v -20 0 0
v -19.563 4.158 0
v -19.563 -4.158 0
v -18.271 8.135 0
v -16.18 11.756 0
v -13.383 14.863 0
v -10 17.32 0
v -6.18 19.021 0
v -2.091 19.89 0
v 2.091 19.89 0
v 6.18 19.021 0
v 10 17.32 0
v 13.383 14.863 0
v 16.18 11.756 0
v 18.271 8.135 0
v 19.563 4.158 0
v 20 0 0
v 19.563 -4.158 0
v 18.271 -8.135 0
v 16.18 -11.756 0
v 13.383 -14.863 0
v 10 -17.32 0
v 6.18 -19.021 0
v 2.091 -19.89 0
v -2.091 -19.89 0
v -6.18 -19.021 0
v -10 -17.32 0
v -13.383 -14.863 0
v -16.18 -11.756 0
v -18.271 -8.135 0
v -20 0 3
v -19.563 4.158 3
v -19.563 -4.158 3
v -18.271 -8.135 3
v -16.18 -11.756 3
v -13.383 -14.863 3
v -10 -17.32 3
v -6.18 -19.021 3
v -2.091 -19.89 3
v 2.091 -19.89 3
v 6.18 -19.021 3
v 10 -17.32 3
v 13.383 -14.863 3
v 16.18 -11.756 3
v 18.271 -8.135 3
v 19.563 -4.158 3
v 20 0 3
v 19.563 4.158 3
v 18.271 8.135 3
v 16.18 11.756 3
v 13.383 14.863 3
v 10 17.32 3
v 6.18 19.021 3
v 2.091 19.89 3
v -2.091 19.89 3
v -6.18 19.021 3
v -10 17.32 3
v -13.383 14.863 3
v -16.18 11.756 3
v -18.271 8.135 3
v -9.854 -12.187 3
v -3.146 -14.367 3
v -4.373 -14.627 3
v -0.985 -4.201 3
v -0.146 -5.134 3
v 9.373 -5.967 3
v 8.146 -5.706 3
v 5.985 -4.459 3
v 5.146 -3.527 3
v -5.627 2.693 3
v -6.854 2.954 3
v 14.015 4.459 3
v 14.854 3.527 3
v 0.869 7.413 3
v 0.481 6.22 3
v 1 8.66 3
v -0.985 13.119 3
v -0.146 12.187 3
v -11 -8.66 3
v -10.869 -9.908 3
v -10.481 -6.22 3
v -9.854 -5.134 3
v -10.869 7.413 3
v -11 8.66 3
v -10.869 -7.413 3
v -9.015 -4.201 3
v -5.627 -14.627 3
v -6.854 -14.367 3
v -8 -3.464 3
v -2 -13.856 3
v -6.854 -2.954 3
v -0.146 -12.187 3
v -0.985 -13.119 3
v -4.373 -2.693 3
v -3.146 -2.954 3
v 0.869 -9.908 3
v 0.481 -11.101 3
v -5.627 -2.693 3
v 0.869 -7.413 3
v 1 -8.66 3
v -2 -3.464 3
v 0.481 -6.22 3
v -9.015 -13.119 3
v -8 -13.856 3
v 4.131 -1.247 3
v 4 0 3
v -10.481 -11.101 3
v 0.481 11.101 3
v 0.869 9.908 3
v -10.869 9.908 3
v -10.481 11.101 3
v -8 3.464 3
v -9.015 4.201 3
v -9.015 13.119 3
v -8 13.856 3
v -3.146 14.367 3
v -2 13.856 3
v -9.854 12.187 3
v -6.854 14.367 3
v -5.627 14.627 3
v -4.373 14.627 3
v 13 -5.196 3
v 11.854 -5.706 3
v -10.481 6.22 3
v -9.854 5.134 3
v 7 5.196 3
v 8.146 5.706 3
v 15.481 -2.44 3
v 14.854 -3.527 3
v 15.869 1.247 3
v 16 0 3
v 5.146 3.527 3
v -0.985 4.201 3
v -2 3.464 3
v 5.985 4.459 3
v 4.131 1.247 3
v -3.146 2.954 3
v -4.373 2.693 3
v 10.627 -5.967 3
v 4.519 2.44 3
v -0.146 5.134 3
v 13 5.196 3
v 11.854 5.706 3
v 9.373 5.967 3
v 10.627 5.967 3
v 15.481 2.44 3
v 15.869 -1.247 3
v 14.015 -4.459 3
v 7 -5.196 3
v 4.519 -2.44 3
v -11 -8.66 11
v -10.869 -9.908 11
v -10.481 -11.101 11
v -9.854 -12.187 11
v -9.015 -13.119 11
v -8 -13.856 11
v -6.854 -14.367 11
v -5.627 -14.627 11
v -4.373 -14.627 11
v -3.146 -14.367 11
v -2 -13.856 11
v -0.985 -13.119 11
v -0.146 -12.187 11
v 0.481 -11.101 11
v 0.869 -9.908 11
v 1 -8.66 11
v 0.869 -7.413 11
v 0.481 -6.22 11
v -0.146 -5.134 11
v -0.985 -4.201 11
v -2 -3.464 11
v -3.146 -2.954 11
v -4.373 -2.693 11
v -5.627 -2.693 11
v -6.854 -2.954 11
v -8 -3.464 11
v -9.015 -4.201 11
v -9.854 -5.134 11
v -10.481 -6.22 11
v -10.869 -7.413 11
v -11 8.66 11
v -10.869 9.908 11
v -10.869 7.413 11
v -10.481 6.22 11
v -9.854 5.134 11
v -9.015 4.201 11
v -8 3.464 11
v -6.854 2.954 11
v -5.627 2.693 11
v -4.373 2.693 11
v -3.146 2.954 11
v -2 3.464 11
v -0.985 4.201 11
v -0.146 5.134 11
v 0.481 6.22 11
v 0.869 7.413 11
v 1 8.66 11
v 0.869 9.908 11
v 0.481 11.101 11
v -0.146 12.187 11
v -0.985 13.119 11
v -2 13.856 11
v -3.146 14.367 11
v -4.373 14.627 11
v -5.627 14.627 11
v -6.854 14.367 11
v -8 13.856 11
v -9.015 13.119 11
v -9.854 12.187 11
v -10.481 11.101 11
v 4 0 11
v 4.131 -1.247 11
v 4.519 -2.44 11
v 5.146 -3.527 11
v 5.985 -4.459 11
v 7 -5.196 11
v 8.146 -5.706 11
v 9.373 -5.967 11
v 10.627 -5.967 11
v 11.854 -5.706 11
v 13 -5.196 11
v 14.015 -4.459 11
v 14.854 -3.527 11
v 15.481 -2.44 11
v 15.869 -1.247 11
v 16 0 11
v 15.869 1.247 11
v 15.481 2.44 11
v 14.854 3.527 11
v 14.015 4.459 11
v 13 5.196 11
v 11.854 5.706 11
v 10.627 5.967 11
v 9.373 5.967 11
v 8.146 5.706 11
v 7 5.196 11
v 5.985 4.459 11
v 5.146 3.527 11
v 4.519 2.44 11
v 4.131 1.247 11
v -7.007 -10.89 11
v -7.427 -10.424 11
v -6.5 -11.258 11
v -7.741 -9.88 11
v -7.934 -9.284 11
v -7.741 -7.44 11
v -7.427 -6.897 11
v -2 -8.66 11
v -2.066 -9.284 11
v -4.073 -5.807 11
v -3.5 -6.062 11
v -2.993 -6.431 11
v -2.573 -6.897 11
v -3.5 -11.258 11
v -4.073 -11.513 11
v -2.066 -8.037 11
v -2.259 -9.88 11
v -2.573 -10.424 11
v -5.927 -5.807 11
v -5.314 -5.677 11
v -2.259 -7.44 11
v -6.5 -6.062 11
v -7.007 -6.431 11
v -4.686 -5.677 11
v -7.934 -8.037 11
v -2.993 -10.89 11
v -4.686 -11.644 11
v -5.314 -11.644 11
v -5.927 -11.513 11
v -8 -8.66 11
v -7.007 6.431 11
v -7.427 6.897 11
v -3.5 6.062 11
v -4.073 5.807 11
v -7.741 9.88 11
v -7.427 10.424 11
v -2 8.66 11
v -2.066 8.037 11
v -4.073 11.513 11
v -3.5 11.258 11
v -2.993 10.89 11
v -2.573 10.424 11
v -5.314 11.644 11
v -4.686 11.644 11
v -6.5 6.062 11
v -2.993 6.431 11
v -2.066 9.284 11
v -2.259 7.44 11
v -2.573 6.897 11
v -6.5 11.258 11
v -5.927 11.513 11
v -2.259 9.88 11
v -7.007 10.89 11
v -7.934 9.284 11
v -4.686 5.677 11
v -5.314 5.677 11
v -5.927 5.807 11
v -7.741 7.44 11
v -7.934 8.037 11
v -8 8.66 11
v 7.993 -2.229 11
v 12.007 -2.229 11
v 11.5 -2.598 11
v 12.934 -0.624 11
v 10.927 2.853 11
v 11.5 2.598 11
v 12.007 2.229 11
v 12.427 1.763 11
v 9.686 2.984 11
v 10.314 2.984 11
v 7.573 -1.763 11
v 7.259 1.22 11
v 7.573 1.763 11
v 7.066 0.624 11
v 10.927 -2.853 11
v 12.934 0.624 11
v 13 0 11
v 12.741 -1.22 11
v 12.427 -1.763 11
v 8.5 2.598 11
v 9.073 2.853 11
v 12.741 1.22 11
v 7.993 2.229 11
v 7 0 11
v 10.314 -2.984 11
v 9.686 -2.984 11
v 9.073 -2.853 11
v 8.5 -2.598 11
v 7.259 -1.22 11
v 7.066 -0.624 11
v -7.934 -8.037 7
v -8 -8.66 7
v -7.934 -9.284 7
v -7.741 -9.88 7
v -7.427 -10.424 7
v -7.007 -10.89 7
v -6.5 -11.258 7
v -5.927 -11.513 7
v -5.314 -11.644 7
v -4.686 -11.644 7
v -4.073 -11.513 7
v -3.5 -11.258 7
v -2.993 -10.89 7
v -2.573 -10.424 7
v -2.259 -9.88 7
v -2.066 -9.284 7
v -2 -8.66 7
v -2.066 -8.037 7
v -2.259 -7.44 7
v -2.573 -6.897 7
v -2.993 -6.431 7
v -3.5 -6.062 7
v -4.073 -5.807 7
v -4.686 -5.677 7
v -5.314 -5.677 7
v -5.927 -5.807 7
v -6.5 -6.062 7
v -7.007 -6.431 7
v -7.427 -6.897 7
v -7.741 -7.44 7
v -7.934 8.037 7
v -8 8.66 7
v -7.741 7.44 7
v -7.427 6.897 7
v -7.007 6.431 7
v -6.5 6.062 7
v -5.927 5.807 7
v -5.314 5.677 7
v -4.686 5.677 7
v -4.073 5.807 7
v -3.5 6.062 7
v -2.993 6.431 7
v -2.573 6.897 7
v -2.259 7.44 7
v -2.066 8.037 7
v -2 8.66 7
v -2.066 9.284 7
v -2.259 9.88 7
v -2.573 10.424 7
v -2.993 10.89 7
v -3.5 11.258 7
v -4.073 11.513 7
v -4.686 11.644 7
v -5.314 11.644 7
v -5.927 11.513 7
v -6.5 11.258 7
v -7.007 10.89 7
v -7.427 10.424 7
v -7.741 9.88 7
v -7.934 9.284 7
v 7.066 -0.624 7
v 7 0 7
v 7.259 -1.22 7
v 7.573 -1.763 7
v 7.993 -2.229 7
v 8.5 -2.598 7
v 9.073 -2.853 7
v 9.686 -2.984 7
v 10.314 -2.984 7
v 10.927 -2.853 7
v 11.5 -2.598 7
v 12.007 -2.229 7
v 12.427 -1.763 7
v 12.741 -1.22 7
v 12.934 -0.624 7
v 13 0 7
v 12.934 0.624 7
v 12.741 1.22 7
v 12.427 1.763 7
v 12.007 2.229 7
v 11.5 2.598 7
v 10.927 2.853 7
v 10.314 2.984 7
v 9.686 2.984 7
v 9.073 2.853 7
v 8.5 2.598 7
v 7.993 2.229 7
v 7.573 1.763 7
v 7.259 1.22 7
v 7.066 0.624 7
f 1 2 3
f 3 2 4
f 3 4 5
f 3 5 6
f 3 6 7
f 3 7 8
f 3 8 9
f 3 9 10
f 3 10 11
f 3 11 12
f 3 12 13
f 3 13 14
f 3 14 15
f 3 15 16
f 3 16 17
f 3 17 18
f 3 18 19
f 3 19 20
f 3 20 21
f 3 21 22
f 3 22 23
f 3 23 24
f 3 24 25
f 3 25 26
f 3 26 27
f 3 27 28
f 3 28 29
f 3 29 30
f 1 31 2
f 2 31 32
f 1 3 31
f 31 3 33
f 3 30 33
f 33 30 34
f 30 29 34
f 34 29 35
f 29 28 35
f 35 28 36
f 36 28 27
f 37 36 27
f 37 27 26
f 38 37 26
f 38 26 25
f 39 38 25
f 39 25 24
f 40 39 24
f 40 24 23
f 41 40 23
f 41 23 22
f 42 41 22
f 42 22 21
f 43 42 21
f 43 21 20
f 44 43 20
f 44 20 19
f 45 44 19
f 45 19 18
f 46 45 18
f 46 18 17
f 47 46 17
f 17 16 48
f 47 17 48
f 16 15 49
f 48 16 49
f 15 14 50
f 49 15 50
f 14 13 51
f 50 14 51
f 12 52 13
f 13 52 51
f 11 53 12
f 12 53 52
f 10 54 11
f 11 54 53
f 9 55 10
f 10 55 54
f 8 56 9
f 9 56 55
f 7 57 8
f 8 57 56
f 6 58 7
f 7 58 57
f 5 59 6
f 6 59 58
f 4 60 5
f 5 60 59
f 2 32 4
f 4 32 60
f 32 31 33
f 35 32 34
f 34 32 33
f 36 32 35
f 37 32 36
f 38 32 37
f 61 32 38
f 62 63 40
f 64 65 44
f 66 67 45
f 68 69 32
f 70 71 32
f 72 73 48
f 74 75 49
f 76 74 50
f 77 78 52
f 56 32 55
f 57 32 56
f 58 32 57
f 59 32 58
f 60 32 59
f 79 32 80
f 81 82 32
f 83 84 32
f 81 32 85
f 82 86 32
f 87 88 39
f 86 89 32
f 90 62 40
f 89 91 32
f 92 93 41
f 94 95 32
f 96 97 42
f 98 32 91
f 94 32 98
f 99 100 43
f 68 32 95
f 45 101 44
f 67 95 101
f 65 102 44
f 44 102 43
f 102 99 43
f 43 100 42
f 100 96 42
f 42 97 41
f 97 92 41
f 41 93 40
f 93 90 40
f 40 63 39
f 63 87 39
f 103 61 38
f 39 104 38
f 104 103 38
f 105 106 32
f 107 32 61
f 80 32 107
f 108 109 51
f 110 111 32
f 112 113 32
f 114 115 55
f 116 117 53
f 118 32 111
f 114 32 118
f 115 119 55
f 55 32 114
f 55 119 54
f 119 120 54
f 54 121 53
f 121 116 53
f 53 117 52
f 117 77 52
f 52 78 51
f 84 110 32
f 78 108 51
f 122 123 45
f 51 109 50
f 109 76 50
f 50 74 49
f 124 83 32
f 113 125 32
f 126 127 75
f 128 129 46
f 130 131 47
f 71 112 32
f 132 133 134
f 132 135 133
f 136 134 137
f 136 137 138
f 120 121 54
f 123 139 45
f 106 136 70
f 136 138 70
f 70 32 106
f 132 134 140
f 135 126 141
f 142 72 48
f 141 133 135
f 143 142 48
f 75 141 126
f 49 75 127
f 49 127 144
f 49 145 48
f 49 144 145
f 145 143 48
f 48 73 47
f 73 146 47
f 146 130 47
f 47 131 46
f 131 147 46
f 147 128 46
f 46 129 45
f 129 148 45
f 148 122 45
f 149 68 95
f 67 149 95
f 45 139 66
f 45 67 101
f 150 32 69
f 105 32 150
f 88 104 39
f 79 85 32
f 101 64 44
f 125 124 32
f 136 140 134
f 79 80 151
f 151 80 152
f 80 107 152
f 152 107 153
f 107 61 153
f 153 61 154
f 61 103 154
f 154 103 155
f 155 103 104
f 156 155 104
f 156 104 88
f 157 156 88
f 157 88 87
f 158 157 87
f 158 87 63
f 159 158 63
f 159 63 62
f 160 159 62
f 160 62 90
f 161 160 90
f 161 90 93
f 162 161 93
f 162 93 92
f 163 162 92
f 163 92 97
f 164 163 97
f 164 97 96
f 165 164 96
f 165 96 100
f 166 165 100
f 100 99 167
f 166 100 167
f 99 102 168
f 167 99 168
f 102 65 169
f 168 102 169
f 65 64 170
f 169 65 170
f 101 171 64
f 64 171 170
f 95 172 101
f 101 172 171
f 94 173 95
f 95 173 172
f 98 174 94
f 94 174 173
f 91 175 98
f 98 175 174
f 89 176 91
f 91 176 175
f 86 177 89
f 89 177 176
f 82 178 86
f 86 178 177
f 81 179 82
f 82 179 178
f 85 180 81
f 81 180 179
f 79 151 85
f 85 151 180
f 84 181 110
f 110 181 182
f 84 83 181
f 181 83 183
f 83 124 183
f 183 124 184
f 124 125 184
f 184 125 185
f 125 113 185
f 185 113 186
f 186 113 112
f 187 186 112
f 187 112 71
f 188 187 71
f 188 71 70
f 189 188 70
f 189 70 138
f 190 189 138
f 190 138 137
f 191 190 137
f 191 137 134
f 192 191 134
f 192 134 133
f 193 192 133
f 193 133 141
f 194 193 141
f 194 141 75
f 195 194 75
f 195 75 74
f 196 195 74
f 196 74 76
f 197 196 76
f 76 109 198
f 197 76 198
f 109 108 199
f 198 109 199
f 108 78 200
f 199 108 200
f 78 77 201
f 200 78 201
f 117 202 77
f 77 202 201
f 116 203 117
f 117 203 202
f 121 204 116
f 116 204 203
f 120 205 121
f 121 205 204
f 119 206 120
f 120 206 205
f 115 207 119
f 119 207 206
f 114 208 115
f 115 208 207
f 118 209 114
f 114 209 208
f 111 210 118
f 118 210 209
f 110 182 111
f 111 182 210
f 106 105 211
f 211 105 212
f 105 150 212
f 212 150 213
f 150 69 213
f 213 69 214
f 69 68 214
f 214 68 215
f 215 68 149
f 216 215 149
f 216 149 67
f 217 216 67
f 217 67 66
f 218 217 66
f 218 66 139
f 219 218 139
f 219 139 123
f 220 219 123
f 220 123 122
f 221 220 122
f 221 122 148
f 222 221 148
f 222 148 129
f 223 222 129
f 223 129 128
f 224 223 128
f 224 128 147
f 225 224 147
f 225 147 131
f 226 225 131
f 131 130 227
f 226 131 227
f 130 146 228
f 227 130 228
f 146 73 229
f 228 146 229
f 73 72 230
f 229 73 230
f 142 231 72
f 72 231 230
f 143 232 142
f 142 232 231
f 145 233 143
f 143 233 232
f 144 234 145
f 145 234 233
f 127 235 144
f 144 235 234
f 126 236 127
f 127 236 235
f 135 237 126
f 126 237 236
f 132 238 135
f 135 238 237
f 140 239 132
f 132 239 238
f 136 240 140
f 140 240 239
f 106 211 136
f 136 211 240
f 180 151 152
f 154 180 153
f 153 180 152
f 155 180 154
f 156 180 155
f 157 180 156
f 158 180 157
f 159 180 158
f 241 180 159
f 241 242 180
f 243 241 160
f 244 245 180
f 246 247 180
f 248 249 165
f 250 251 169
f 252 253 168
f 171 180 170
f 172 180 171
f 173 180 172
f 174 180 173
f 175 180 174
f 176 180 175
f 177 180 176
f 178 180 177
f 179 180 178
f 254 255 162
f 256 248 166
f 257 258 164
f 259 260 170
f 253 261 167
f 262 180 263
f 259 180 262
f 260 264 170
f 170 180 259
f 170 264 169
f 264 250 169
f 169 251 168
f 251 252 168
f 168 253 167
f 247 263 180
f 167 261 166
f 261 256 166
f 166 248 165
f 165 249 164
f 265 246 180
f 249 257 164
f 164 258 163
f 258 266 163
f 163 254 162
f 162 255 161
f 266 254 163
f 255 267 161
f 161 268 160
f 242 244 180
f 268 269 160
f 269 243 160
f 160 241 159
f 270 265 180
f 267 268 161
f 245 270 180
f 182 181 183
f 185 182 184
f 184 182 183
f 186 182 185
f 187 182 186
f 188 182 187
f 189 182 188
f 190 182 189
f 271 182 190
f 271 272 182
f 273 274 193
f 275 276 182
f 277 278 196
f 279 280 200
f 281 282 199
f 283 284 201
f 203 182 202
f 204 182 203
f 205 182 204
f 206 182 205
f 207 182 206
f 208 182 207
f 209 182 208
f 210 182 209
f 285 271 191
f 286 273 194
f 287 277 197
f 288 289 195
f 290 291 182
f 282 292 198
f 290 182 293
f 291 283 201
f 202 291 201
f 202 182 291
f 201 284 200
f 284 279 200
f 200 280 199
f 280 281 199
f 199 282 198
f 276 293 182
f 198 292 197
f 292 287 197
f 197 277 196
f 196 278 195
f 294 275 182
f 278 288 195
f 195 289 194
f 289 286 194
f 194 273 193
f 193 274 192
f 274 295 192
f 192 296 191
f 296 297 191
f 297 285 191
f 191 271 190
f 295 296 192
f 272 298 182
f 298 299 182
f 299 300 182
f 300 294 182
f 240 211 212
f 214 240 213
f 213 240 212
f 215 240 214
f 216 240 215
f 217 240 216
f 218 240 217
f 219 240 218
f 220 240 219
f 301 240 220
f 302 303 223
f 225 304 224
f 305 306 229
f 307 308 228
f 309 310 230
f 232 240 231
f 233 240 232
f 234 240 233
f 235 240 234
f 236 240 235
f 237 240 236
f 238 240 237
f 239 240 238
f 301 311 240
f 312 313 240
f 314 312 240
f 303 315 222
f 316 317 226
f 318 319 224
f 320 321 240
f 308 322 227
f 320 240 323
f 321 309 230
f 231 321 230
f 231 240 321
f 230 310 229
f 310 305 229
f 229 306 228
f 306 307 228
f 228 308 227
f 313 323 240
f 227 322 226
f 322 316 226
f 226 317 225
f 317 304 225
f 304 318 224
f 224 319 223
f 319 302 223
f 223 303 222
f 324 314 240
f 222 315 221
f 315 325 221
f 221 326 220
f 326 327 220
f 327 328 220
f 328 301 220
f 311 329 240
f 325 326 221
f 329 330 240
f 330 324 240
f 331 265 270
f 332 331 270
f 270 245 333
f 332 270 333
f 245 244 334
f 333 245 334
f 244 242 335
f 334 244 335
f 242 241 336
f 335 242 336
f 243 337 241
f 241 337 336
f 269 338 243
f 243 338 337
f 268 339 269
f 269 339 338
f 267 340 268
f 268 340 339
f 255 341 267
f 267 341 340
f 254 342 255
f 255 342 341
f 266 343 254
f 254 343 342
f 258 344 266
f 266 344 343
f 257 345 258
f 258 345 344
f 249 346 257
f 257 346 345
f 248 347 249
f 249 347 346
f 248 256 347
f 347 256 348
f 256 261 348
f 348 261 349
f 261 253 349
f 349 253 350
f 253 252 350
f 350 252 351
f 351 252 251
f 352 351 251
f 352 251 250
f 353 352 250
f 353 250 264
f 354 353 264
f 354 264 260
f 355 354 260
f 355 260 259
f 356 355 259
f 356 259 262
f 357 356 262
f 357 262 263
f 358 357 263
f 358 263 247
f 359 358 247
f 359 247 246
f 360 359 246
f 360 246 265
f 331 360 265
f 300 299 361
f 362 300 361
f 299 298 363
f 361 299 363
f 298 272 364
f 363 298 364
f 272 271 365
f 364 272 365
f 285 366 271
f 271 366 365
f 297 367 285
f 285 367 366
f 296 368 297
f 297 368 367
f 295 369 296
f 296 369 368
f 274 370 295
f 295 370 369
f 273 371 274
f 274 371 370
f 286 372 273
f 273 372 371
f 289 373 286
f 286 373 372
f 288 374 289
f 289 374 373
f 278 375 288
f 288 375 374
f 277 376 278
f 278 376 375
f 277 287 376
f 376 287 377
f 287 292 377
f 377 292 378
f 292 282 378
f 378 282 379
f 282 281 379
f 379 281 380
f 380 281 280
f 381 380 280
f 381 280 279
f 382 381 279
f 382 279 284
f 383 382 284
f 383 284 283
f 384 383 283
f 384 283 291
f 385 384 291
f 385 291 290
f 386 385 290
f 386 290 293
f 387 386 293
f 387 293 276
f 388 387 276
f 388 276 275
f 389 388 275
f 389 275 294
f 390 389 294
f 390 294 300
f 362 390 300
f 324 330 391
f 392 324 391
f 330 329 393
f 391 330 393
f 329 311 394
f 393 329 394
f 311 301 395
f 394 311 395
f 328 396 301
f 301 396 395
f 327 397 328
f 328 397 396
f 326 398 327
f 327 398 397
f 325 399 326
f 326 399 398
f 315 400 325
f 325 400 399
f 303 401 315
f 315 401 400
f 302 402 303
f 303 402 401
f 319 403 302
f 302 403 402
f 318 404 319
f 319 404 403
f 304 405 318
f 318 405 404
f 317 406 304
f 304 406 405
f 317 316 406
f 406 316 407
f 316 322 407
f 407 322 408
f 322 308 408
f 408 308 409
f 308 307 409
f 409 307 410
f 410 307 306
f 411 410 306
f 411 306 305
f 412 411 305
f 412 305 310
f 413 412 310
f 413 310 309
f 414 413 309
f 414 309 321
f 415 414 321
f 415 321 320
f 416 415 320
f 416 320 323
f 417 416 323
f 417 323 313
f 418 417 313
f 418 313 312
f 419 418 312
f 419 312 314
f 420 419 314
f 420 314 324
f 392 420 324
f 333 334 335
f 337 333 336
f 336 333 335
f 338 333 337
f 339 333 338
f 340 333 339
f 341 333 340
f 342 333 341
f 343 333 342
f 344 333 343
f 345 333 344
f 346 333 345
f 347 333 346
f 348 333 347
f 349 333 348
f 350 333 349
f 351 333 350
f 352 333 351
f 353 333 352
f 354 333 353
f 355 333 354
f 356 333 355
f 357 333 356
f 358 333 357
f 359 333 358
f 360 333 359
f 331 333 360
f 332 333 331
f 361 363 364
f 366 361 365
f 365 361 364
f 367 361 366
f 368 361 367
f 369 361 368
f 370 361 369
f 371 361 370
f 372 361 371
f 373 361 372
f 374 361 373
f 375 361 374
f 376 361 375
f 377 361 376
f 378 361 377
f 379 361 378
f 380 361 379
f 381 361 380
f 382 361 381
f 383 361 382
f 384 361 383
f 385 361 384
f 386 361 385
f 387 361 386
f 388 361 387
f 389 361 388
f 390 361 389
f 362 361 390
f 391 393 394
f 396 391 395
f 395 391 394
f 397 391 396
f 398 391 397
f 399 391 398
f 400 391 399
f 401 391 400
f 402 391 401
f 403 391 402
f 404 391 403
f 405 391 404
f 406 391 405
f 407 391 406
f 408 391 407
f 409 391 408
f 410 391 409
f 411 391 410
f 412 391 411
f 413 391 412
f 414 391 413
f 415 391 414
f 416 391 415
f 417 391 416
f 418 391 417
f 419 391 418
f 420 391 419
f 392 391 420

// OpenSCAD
cylinder(r=20, h=3);
module female() {
	translate([10,0,2]){
		difference(){
			cylinder(r=6, h=9, $fs=0.3);
			translate([0,0,5]){
				cylinder(r=3, h=10, $fs=0.3);
			}
		}
	}
}
female();
rotate(120, [0,0,1]){female();}
rotate(240, [0,0,1]){female();}
